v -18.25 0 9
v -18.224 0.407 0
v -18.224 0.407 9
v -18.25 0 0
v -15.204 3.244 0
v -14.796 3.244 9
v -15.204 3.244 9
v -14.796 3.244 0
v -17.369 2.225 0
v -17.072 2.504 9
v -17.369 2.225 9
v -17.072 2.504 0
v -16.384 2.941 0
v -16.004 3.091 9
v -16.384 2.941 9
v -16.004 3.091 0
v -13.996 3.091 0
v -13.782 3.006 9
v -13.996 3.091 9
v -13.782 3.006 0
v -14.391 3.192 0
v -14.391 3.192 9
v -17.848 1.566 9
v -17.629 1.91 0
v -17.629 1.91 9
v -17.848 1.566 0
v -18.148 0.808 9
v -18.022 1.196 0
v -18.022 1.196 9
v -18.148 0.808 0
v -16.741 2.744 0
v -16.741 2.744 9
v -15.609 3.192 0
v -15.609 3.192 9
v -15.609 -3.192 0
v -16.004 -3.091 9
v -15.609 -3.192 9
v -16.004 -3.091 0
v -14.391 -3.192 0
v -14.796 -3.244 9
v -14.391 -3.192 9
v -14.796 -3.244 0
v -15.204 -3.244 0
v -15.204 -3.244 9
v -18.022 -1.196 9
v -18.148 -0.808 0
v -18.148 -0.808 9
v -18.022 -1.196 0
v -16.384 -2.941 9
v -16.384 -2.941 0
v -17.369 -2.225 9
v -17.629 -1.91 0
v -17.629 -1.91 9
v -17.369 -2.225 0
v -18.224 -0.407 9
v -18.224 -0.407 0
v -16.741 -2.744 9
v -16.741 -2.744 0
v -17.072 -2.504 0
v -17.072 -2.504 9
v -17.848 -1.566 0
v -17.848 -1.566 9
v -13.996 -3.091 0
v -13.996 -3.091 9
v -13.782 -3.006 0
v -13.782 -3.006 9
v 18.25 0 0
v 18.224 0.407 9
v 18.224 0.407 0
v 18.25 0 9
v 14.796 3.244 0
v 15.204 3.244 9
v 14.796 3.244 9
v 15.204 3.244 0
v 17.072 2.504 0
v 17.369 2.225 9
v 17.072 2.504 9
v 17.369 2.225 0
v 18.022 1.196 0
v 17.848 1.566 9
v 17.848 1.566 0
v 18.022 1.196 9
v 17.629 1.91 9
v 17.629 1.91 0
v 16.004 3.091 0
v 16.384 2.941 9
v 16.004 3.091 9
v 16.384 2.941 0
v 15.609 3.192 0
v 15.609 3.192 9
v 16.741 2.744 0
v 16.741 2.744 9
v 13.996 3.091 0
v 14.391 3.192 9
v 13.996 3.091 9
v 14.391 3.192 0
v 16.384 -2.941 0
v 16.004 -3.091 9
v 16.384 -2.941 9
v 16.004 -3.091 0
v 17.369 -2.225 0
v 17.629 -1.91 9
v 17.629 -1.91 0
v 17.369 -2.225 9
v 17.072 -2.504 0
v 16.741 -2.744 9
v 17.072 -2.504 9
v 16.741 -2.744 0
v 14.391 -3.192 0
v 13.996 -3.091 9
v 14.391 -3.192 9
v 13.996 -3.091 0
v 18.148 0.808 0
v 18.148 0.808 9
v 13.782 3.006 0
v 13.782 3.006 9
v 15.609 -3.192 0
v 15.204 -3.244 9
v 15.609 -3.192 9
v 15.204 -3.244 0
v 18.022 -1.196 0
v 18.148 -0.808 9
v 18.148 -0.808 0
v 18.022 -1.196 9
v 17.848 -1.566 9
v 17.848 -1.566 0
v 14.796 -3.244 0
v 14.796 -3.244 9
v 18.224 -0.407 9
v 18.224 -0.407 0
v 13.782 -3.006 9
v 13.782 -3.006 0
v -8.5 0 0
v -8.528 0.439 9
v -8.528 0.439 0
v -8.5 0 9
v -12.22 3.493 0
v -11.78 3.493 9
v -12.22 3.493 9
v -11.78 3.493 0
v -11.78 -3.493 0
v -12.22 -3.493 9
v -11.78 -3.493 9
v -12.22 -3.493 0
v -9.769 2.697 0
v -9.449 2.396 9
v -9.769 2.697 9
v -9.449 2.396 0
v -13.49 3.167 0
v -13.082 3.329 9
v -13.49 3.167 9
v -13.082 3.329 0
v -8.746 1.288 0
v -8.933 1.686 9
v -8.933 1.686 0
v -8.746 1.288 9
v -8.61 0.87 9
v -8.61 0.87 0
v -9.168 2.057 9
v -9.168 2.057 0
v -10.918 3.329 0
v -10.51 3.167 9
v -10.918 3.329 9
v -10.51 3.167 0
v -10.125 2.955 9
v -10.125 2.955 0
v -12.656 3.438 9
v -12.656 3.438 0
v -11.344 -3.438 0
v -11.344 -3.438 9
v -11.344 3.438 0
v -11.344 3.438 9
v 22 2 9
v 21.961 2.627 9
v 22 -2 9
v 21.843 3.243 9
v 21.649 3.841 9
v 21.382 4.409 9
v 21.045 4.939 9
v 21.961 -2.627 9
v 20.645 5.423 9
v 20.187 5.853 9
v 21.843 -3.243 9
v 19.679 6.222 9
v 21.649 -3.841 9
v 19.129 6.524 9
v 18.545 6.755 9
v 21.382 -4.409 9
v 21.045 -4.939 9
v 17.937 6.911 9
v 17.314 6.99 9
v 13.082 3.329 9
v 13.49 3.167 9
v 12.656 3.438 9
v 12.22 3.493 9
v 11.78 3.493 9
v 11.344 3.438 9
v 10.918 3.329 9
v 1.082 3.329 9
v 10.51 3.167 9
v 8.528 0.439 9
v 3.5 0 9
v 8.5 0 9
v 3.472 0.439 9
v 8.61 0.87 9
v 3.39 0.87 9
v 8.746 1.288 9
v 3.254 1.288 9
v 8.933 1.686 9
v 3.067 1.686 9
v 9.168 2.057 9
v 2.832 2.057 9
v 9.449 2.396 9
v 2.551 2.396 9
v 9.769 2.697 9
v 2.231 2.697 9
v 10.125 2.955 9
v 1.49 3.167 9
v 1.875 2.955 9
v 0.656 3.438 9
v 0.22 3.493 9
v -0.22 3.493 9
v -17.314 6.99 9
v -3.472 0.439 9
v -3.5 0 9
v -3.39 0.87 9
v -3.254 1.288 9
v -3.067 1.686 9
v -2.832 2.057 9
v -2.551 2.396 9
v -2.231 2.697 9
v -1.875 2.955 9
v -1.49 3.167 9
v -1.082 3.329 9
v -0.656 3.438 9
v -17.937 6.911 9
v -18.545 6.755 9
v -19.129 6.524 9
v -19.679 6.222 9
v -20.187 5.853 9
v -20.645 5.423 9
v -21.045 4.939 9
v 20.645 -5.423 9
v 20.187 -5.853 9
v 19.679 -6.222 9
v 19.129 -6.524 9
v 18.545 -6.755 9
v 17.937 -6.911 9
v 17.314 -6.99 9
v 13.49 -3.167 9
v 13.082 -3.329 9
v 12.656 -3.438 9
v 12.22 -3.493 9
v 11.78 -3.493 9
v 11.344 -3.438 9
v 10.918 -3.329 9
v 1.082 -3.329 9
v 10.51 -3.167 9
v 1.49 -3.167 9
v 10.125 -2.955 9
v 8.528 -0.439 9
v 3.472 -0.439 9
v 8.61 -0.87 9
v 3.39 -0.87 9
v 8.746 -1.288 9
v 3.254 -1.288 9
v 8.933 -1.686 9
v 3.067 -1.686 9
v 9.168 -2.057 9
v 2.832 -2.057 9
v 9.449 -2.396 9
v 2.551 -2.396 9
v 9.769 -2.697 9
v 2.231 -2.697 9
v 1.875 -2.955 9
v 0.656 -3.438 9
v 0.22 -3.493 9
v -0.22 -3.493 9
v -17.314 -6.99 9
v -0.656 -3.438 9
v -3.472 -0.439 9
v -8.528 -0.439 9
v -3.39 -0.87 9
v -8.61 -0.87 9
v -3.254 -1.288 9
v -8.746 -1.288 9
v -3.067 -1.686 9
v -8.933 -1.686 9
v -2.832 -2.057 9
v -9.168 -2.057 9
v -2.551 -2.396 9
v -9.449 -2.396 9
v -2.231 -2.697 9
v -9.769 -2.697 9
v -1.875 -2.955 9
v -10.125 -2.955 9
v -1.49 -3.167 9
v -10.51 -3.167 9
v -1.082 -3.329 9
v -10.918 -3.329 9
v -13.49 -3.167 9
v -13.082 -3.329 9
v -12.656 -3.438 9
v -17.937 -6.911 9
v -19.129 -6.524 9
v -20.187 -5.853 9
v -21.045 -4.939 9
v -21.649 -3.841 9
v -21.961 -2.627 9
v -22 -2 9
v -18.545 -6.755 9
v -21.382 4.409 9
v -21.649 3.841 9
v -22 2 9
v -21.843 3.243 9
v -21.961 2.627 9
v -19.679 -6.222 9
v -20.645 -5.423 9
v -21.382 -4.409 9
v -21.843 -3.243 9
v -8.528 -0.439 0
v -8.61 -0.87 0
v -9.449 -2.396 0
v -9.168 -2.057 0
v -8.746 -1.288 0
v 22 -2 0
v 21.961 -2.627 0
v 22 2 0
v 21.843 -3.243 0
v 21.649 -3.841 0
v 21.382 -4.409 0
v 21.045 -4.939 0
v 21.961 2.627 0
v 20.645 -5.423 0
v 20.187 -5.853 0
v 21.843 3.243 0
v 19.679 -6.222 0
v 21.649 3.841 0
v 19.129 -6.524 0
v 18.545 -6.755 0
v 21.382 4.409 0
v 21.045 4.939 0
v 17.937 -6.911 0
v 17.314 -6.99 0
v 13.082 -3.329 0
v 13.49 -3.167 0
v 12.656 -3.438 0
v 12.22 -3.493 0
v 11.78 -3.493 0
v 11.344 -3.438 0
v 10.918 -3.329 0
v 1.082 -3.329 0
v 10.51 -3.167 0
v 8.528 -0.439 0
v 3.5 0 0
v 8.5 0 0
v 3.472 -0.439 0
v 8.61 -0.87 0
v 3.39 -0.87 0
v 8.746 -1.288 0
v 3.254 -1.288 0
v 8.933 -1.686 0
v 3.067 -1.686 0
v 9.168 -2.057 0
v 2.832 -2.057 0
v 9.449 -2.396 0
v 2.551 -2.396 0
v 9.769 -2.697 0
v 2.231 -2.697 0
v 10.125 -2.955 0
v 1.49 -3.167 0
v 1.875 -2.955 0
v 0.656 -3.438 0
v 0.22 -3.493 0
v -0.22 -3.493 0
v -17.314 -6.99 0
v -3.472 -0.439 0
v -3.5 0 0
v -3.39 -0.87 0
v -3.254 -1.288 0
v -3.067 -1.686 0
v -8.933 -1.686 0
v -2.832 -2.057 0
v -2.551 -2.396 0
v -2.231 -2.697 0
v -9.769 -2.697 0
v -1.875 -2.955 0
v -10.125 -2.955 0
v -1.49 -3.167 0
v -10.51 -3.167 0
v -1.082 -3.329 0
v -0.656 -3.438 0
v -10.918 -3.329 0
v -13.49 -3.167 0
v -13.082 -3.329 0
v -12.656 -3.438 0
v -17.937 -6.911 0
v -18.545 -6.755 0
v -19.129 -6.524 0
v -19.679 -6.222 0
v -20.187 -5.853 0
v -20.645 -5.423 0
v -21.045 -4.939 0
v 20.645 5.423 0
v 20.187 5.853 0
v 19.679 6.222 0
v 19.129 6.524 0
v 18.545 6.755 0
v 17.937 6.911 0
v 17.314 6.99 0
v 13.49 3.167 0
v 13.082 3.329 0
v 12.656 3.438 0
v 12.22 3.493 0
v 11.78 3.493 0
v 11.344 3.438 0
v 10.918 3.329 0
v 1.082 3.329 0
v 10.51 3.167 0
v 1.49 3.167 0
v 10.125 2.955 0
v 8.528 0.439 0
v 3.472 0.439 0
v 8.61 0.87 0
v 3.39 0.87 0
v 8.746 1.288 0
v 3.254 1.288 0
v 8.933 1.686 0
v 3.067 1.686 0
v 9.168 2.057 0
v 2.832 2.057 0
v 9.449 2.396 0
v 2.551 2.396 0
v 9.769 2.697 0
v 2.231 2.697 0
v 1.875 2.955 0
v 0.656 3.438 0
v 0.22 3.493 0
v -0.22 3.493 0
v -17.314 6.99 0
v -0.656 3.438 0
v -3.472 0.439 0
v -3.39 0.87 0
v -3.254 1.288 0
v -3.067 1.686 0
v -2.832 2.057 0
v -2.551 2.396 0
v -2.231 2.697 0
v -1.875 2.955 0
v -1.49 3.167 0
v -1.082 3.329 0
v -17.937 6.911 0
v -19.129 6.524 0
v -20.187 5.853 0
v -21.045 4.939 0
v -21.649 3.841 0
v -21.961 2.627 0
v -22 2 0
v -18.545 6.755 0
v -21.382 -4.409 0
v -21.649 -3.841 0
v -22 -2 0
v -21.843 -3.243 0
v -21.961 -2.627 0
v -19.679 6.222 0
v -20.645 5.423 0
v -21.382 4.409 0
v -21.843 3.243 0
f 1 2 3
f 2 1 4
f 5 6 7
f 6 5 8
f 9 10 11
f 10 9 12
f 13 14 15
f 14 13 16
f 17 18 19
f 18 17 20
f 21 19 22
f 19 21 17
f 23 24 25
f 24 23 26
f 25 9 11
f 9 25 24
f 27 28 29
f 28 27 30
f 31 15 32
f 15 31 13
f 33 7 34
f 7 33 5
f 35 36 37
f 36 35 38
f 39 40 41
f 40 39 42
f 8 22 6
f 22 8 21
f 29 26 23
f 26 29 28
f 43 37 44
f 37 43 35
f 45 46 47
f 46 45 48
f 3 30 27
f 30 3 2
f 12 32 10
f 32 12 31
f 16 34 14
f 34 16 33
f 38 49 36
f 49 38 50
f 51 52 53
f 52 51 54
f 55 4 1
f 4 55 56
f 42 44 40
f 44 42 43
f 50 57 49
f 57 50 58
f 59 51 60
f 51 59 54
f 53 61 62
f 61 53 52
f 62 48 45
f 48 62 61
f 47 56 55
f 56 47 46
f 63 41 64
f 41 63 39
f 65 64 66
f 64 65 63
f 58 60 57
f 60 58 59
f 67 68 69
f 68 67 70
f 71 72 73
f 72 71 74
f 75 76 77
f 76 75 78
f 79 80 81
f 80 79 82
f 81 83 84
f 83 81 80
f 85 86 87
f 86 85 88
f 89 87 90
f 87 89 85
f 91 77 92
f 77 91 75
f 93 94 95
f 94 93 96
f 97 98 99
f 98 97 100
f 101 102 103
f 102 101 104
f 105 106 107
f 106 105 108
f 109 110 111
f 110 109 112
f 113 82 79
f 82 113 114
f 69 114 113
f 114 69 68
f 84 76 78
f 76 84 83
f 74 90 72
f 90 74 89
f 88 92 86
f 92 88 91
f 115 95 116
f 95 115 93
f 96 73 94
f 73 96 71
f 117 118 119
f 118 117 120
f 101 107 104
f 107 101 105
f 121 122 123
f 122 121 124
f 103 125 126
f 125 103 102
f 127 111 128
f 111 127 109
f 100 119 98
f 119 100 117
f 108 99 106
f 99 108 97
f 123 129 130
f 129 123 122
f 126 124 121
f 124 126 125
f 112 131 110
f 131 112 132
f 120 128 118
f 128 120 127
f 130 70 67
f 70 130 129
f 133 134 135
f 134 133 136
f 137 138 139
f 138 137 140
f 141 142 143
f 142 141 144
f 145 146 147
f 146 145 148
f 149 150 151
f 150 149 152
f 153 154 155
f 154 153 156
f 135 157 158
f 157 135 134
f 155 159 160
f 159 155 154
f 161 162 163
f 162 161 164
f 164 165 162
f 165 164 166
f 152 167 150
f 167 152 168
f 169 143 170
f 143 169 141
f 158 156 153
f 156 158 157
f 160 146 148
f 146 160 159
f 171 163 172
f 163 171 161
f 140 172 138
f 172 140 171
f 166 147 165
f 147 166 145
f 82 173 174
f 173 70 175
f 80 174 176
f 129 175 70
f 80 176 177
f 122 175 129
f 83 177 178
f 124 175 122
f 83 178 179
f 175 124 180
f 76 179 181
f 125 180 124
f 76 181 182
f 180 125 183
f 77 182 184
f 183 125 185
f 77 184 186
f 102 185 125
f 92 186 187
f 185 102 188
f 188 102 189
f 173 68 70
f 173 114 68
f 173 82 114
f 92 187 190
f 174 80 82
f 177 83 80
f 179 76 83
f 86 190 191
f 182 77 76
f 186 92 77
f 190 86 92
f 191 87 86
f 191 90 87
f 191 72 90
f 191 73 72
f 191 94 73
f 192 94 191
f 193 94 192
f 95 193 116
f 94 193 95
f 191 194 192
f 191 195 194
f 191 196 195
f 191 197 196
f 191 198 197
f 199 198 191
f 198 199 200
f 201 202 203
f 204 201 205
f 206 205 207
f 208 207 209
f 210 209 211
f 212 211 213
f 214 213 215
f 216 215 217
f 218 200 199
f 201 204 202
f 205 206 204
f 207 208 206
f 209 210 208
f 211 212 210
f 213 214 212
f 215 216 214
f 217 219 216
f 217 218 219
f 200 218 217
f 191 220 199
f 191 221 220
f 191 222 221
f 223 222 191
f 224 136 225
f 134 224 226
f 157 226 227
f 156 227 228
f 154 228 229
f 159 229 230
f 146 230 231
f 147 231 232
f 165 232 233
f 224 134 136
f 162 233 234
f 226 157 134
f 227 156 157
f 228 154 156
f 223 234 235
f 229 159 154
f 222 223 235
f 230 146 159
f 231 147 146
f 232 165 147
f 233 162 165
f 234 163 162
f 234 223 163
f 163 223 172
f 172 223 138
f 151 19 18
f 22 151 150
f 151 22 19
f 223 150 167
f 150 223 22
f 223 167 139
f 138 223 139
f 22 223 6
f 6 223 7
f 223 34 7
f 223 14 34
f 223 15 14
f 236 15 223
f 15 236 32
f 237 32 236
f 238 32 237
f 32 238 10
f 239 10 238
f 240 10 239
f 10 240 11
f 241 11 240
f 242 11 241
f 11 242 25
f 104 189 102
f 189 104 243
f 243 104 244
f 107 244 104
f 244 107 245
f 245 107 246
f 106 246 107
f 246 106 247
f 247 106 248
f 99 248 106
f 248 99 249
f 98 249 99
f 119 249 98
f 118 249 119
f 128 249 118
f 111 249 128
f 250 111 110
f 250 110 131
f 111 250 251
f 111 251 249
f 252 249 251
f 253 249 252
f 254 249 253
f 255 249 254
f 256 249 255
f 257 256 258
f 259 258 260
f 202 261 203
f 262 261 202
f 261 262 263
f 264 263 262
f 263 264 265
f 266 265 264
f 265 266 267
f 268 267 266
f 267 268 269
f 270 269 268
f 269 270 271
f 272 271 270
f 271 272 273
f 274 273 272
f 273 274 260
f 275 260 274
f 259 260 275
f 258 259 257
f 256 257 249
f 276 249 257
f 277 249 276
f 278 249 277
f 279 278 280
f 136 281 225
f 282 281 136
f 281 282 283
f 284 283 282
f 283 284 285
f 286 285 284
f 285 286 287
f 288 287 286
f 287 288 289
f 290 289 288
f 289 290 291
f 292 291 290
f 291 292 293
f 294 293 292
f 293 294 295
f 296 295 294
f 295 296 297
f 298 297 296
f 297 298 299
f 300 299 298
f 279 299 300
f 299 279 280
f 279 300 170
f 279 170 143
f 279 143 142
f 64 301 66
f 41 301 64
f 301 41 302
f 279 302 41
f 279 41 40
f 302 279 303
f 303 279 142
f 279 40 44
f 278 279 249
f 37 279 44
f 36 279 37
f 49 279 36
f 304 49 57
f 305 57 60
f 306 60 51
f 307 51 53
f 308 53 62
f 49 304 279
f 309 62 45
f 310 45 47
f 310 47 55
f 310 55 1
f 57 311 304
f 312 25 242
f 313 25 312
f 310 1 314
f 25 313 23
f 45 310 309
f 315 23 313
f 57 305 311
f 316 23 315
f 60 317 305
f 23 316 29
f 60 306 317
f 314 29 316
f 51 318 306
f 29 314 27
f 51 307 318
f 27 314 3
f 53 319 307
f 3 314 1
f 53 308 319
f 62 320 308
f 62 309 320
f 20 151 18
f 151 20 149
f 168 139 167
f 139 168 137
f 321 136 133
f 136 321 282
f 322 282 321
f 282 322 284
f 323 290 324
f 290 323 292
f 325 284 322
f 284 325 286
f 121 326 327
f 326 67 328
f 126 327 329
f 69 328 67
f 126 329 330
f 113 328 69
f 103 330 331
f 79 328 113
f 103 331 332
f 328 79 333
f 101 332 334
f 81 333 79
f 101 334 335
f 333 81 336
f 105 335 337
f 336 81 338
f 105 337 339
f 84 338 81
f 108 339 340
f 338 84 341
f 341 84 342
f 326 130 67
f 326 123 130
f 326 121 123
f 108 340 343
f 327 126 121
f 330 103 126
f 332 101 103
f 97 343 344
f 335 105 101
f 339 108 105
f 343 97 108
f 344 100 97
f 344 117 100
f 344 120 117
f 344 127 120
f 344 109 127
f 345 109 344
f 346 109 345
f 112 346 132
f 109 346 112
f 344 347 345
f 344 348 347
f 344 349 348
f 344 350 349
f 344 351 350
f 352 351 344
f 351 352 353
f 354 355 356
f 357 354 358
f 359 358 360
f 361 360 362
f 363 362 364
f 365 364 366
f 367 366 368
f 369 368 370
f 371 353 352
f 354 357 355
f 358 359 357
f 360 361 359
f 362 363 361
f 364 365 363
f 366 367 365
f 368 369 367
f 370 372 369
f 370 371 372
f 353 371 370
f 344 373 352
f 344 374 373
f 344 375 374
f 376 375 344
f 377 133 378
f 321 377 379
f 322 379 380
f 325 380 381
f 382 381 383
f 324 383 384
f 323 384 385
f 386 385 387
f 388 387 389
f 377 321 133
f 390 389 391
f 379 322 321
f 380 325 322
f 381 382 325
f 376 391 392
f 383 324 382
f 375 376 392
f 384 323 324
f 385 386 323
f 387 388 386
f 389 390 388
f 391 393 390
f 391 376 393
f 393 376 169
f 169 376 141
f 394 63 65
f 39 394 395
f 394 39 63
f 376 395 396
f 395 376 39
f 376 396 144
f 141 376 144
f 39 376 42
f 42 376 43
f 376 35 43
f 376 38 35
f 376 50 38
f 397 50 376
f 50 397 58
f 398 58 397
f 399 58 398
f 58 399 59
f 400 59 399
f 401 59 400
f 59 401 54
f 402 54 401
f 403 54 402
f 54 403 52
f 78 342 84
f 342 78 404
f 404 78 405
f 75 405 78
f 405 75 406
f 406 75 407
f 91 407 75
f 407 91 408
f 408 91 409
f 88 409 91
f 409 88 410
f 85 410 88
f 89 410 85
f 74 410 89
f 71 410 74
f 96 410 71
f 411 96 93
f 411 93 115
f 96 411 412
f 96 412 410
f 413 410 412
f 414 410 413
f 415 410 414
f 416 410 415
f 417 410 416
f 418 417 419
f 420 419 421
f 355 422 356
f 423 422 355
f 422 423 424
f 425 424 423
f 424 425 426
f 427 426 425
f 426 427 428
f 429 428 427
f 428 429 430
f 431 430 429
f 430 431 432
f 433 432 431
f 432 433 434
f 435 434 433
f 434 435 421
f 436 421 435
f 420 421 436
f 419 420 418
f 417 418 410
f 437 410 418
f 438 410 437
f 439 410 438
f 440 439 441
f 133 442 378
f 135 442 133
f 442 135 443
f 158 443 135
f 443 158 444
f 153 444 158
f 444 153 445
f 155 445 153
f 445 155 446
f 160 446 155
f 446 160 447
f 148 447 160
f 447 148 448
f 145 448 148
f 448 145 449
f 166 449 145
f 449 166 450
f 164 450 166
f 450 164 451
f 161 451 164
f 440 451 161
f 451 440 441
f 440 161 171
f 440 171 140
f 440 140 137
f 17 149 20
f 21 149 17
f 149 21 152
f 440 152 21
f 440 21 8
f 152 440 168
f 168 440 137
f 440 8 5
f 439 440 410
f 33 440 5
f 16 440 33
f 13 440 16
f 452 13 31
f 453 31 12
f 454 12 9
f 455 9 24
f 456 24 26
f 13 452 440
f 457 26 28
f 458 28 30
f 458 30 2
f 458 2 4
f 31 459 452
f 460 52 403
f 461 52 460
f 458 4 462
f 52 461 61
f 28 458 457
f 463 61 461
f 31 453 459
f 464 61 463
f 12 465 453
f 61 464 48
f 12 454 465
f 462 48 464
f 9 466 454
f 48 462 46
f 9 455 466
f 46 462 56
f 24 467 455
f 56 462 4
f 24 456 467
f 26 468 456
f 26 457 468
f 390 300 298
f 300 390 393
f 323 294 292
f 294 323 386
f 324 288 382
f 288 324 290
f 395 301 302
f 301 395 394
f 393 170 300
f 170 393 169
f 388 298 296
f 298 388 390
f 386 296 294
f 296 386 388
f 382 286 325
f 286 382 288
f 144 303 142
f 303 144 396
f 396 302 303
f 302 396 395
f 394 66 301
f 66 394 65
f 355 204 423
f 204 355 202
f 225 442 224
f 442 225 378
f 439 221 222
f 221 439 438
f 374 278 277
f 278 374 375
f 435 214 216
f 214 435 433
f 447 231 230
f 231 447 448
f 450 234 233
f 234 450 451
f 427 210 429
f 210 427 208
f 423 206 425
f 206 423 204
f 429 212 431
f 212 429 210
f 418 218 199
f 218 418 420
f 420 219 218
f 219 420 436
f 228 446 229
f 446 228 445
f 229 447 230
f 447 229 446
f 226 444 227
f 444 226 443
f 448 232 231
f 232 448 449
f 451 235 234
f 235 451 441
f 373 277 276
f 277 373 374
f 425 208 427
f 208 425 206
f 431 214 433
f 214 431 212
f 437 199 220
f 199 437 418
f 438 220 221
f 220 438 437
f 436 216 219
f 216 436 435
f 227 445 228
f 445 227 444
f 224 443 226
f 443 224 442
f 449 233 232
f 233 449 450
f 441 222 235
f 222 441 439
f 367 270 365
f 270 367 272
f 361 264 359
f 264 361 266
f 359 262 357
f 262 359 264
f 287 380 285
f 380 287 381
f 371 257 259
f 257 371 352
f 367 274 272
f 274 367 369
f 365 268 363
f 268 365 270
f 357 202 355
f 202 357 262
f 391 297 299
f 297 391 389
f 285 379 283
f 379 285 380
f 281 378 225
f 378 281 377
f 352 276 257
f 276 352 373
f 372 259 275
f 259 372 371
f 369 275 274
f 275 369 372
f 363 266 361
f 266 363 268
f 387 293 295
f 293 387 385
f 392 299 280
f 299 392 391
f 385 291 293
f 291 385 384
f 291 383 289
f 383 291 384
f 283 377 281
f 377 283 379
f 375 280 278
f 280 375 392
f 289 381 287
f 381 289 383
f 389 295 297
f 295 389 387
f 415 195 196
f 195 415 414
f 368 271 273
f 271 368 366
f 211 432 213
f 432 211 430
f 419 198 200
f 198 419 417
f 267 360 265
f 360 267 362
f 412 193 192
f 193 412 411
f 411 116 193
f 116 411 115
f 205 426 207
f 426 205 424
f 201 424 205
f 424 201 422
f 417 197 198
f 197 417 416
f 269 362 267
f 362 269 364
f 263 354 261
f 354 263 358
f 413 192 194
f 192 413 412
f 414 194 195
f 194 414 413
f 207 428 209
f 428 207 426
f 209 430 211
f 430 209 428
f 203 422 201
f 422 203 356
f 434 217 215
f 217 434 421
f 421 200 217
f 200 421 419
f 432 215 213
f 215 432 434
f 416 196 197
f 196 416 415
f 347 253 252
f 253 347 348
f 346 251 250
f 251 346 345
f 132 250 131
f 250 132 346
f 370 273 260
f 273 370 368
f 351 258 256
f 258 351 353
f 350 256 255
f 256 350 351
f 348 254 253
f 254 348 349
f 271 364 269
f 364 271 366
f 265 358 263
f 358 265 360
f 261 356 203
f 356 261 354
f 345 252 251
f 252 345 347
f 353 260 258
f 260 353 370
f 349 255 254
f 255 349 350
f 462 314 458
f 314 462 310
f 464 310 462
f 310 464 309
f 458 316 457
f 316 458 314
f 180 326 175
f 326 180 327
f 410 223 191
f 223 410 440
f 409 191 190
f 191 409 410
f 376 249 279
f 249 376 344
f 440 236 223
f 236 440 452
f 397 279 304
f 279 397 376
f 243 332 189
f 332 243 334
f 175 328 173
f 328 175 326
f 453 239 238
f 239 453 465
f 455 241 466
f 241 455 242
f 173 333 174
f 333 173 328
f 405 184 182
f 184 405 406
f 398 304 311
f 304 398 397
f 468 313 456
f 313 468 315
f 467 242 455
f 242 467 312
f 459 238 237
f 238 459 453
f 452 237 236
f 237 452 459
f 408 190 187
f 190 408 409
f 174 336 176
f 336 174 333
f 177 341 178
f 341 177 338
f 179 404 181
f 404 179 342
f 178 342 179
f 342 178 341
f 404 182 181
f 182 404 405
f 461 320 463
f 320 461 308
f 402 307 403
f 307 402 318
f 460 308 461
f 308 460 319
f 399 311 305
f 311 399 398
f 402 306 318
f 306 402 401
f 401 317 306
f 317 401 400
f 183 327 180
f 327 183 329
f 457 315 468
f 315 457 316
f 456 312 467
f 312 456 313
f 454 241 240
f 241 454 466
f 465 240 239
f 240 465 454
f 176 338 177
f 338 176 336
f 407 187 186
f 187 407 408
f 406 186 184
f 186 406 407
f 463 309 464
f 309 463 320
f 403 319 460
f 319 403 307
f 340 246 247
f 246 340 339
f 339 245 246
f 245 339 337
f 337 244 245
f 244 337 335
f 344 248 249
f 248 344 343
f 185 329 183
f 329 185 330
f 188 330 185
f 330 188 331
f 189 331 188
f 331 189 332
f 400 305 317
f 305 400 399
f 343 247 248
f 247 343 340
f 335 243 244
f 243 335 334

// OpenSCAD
$fn = 50;


difference() {
	union() {
		hull() {
			translate(v = [-17.0000000000, 2.0000000000, 0]) {
				cylinder(h = 9, r = 5);
			}
			translate(v = [17.0000000000, 2.0000000000, 0]) {
				cylinder(h = 9, r = 5);
			}
			translate(v = [-17.0000000000, -2.0000000000, 0]) {
				cylinder(h = 9, r = 5);
			}
			translate(v = [17.0000000000, -2.0000000000, 0]) {
				cylinder(h = 9, r = 5);
			}
		}
	}
	union() {
		#translate(v = [-15.0000000000, 0.0000000000, -100.0000000000]) {
			cylinder(h = 200, r = 3.2500000000);
		}
		#translate(v = [-15.0000000000, 0.0000000000, -100.0000000000]) {
			cylinder(h = 200, r = 3.2500000000);
		}
		#translate(v = [15.0000000000, 0.0000000000, -100.0000000000]) {
			cylinder(h = 200, r = 3.2500000000);
		}
		#translate(v = [15.0000000000, 0.0000000000, -100.0000000000]) {
			cylinder(h = 200, r = 3.2500000000);
		}
		#translate(v = [-12.0000000000, 0, 0]) {
			cylinder(h = 9, r = 3.5000000000);
		}
		#cylinder(h = 9, r = 3.5000000000);
		#translate(v = [12.0000000000, 0, 0]) {
			cylinder(h = 9, r = 3.5000000000);
		}
	}
}
